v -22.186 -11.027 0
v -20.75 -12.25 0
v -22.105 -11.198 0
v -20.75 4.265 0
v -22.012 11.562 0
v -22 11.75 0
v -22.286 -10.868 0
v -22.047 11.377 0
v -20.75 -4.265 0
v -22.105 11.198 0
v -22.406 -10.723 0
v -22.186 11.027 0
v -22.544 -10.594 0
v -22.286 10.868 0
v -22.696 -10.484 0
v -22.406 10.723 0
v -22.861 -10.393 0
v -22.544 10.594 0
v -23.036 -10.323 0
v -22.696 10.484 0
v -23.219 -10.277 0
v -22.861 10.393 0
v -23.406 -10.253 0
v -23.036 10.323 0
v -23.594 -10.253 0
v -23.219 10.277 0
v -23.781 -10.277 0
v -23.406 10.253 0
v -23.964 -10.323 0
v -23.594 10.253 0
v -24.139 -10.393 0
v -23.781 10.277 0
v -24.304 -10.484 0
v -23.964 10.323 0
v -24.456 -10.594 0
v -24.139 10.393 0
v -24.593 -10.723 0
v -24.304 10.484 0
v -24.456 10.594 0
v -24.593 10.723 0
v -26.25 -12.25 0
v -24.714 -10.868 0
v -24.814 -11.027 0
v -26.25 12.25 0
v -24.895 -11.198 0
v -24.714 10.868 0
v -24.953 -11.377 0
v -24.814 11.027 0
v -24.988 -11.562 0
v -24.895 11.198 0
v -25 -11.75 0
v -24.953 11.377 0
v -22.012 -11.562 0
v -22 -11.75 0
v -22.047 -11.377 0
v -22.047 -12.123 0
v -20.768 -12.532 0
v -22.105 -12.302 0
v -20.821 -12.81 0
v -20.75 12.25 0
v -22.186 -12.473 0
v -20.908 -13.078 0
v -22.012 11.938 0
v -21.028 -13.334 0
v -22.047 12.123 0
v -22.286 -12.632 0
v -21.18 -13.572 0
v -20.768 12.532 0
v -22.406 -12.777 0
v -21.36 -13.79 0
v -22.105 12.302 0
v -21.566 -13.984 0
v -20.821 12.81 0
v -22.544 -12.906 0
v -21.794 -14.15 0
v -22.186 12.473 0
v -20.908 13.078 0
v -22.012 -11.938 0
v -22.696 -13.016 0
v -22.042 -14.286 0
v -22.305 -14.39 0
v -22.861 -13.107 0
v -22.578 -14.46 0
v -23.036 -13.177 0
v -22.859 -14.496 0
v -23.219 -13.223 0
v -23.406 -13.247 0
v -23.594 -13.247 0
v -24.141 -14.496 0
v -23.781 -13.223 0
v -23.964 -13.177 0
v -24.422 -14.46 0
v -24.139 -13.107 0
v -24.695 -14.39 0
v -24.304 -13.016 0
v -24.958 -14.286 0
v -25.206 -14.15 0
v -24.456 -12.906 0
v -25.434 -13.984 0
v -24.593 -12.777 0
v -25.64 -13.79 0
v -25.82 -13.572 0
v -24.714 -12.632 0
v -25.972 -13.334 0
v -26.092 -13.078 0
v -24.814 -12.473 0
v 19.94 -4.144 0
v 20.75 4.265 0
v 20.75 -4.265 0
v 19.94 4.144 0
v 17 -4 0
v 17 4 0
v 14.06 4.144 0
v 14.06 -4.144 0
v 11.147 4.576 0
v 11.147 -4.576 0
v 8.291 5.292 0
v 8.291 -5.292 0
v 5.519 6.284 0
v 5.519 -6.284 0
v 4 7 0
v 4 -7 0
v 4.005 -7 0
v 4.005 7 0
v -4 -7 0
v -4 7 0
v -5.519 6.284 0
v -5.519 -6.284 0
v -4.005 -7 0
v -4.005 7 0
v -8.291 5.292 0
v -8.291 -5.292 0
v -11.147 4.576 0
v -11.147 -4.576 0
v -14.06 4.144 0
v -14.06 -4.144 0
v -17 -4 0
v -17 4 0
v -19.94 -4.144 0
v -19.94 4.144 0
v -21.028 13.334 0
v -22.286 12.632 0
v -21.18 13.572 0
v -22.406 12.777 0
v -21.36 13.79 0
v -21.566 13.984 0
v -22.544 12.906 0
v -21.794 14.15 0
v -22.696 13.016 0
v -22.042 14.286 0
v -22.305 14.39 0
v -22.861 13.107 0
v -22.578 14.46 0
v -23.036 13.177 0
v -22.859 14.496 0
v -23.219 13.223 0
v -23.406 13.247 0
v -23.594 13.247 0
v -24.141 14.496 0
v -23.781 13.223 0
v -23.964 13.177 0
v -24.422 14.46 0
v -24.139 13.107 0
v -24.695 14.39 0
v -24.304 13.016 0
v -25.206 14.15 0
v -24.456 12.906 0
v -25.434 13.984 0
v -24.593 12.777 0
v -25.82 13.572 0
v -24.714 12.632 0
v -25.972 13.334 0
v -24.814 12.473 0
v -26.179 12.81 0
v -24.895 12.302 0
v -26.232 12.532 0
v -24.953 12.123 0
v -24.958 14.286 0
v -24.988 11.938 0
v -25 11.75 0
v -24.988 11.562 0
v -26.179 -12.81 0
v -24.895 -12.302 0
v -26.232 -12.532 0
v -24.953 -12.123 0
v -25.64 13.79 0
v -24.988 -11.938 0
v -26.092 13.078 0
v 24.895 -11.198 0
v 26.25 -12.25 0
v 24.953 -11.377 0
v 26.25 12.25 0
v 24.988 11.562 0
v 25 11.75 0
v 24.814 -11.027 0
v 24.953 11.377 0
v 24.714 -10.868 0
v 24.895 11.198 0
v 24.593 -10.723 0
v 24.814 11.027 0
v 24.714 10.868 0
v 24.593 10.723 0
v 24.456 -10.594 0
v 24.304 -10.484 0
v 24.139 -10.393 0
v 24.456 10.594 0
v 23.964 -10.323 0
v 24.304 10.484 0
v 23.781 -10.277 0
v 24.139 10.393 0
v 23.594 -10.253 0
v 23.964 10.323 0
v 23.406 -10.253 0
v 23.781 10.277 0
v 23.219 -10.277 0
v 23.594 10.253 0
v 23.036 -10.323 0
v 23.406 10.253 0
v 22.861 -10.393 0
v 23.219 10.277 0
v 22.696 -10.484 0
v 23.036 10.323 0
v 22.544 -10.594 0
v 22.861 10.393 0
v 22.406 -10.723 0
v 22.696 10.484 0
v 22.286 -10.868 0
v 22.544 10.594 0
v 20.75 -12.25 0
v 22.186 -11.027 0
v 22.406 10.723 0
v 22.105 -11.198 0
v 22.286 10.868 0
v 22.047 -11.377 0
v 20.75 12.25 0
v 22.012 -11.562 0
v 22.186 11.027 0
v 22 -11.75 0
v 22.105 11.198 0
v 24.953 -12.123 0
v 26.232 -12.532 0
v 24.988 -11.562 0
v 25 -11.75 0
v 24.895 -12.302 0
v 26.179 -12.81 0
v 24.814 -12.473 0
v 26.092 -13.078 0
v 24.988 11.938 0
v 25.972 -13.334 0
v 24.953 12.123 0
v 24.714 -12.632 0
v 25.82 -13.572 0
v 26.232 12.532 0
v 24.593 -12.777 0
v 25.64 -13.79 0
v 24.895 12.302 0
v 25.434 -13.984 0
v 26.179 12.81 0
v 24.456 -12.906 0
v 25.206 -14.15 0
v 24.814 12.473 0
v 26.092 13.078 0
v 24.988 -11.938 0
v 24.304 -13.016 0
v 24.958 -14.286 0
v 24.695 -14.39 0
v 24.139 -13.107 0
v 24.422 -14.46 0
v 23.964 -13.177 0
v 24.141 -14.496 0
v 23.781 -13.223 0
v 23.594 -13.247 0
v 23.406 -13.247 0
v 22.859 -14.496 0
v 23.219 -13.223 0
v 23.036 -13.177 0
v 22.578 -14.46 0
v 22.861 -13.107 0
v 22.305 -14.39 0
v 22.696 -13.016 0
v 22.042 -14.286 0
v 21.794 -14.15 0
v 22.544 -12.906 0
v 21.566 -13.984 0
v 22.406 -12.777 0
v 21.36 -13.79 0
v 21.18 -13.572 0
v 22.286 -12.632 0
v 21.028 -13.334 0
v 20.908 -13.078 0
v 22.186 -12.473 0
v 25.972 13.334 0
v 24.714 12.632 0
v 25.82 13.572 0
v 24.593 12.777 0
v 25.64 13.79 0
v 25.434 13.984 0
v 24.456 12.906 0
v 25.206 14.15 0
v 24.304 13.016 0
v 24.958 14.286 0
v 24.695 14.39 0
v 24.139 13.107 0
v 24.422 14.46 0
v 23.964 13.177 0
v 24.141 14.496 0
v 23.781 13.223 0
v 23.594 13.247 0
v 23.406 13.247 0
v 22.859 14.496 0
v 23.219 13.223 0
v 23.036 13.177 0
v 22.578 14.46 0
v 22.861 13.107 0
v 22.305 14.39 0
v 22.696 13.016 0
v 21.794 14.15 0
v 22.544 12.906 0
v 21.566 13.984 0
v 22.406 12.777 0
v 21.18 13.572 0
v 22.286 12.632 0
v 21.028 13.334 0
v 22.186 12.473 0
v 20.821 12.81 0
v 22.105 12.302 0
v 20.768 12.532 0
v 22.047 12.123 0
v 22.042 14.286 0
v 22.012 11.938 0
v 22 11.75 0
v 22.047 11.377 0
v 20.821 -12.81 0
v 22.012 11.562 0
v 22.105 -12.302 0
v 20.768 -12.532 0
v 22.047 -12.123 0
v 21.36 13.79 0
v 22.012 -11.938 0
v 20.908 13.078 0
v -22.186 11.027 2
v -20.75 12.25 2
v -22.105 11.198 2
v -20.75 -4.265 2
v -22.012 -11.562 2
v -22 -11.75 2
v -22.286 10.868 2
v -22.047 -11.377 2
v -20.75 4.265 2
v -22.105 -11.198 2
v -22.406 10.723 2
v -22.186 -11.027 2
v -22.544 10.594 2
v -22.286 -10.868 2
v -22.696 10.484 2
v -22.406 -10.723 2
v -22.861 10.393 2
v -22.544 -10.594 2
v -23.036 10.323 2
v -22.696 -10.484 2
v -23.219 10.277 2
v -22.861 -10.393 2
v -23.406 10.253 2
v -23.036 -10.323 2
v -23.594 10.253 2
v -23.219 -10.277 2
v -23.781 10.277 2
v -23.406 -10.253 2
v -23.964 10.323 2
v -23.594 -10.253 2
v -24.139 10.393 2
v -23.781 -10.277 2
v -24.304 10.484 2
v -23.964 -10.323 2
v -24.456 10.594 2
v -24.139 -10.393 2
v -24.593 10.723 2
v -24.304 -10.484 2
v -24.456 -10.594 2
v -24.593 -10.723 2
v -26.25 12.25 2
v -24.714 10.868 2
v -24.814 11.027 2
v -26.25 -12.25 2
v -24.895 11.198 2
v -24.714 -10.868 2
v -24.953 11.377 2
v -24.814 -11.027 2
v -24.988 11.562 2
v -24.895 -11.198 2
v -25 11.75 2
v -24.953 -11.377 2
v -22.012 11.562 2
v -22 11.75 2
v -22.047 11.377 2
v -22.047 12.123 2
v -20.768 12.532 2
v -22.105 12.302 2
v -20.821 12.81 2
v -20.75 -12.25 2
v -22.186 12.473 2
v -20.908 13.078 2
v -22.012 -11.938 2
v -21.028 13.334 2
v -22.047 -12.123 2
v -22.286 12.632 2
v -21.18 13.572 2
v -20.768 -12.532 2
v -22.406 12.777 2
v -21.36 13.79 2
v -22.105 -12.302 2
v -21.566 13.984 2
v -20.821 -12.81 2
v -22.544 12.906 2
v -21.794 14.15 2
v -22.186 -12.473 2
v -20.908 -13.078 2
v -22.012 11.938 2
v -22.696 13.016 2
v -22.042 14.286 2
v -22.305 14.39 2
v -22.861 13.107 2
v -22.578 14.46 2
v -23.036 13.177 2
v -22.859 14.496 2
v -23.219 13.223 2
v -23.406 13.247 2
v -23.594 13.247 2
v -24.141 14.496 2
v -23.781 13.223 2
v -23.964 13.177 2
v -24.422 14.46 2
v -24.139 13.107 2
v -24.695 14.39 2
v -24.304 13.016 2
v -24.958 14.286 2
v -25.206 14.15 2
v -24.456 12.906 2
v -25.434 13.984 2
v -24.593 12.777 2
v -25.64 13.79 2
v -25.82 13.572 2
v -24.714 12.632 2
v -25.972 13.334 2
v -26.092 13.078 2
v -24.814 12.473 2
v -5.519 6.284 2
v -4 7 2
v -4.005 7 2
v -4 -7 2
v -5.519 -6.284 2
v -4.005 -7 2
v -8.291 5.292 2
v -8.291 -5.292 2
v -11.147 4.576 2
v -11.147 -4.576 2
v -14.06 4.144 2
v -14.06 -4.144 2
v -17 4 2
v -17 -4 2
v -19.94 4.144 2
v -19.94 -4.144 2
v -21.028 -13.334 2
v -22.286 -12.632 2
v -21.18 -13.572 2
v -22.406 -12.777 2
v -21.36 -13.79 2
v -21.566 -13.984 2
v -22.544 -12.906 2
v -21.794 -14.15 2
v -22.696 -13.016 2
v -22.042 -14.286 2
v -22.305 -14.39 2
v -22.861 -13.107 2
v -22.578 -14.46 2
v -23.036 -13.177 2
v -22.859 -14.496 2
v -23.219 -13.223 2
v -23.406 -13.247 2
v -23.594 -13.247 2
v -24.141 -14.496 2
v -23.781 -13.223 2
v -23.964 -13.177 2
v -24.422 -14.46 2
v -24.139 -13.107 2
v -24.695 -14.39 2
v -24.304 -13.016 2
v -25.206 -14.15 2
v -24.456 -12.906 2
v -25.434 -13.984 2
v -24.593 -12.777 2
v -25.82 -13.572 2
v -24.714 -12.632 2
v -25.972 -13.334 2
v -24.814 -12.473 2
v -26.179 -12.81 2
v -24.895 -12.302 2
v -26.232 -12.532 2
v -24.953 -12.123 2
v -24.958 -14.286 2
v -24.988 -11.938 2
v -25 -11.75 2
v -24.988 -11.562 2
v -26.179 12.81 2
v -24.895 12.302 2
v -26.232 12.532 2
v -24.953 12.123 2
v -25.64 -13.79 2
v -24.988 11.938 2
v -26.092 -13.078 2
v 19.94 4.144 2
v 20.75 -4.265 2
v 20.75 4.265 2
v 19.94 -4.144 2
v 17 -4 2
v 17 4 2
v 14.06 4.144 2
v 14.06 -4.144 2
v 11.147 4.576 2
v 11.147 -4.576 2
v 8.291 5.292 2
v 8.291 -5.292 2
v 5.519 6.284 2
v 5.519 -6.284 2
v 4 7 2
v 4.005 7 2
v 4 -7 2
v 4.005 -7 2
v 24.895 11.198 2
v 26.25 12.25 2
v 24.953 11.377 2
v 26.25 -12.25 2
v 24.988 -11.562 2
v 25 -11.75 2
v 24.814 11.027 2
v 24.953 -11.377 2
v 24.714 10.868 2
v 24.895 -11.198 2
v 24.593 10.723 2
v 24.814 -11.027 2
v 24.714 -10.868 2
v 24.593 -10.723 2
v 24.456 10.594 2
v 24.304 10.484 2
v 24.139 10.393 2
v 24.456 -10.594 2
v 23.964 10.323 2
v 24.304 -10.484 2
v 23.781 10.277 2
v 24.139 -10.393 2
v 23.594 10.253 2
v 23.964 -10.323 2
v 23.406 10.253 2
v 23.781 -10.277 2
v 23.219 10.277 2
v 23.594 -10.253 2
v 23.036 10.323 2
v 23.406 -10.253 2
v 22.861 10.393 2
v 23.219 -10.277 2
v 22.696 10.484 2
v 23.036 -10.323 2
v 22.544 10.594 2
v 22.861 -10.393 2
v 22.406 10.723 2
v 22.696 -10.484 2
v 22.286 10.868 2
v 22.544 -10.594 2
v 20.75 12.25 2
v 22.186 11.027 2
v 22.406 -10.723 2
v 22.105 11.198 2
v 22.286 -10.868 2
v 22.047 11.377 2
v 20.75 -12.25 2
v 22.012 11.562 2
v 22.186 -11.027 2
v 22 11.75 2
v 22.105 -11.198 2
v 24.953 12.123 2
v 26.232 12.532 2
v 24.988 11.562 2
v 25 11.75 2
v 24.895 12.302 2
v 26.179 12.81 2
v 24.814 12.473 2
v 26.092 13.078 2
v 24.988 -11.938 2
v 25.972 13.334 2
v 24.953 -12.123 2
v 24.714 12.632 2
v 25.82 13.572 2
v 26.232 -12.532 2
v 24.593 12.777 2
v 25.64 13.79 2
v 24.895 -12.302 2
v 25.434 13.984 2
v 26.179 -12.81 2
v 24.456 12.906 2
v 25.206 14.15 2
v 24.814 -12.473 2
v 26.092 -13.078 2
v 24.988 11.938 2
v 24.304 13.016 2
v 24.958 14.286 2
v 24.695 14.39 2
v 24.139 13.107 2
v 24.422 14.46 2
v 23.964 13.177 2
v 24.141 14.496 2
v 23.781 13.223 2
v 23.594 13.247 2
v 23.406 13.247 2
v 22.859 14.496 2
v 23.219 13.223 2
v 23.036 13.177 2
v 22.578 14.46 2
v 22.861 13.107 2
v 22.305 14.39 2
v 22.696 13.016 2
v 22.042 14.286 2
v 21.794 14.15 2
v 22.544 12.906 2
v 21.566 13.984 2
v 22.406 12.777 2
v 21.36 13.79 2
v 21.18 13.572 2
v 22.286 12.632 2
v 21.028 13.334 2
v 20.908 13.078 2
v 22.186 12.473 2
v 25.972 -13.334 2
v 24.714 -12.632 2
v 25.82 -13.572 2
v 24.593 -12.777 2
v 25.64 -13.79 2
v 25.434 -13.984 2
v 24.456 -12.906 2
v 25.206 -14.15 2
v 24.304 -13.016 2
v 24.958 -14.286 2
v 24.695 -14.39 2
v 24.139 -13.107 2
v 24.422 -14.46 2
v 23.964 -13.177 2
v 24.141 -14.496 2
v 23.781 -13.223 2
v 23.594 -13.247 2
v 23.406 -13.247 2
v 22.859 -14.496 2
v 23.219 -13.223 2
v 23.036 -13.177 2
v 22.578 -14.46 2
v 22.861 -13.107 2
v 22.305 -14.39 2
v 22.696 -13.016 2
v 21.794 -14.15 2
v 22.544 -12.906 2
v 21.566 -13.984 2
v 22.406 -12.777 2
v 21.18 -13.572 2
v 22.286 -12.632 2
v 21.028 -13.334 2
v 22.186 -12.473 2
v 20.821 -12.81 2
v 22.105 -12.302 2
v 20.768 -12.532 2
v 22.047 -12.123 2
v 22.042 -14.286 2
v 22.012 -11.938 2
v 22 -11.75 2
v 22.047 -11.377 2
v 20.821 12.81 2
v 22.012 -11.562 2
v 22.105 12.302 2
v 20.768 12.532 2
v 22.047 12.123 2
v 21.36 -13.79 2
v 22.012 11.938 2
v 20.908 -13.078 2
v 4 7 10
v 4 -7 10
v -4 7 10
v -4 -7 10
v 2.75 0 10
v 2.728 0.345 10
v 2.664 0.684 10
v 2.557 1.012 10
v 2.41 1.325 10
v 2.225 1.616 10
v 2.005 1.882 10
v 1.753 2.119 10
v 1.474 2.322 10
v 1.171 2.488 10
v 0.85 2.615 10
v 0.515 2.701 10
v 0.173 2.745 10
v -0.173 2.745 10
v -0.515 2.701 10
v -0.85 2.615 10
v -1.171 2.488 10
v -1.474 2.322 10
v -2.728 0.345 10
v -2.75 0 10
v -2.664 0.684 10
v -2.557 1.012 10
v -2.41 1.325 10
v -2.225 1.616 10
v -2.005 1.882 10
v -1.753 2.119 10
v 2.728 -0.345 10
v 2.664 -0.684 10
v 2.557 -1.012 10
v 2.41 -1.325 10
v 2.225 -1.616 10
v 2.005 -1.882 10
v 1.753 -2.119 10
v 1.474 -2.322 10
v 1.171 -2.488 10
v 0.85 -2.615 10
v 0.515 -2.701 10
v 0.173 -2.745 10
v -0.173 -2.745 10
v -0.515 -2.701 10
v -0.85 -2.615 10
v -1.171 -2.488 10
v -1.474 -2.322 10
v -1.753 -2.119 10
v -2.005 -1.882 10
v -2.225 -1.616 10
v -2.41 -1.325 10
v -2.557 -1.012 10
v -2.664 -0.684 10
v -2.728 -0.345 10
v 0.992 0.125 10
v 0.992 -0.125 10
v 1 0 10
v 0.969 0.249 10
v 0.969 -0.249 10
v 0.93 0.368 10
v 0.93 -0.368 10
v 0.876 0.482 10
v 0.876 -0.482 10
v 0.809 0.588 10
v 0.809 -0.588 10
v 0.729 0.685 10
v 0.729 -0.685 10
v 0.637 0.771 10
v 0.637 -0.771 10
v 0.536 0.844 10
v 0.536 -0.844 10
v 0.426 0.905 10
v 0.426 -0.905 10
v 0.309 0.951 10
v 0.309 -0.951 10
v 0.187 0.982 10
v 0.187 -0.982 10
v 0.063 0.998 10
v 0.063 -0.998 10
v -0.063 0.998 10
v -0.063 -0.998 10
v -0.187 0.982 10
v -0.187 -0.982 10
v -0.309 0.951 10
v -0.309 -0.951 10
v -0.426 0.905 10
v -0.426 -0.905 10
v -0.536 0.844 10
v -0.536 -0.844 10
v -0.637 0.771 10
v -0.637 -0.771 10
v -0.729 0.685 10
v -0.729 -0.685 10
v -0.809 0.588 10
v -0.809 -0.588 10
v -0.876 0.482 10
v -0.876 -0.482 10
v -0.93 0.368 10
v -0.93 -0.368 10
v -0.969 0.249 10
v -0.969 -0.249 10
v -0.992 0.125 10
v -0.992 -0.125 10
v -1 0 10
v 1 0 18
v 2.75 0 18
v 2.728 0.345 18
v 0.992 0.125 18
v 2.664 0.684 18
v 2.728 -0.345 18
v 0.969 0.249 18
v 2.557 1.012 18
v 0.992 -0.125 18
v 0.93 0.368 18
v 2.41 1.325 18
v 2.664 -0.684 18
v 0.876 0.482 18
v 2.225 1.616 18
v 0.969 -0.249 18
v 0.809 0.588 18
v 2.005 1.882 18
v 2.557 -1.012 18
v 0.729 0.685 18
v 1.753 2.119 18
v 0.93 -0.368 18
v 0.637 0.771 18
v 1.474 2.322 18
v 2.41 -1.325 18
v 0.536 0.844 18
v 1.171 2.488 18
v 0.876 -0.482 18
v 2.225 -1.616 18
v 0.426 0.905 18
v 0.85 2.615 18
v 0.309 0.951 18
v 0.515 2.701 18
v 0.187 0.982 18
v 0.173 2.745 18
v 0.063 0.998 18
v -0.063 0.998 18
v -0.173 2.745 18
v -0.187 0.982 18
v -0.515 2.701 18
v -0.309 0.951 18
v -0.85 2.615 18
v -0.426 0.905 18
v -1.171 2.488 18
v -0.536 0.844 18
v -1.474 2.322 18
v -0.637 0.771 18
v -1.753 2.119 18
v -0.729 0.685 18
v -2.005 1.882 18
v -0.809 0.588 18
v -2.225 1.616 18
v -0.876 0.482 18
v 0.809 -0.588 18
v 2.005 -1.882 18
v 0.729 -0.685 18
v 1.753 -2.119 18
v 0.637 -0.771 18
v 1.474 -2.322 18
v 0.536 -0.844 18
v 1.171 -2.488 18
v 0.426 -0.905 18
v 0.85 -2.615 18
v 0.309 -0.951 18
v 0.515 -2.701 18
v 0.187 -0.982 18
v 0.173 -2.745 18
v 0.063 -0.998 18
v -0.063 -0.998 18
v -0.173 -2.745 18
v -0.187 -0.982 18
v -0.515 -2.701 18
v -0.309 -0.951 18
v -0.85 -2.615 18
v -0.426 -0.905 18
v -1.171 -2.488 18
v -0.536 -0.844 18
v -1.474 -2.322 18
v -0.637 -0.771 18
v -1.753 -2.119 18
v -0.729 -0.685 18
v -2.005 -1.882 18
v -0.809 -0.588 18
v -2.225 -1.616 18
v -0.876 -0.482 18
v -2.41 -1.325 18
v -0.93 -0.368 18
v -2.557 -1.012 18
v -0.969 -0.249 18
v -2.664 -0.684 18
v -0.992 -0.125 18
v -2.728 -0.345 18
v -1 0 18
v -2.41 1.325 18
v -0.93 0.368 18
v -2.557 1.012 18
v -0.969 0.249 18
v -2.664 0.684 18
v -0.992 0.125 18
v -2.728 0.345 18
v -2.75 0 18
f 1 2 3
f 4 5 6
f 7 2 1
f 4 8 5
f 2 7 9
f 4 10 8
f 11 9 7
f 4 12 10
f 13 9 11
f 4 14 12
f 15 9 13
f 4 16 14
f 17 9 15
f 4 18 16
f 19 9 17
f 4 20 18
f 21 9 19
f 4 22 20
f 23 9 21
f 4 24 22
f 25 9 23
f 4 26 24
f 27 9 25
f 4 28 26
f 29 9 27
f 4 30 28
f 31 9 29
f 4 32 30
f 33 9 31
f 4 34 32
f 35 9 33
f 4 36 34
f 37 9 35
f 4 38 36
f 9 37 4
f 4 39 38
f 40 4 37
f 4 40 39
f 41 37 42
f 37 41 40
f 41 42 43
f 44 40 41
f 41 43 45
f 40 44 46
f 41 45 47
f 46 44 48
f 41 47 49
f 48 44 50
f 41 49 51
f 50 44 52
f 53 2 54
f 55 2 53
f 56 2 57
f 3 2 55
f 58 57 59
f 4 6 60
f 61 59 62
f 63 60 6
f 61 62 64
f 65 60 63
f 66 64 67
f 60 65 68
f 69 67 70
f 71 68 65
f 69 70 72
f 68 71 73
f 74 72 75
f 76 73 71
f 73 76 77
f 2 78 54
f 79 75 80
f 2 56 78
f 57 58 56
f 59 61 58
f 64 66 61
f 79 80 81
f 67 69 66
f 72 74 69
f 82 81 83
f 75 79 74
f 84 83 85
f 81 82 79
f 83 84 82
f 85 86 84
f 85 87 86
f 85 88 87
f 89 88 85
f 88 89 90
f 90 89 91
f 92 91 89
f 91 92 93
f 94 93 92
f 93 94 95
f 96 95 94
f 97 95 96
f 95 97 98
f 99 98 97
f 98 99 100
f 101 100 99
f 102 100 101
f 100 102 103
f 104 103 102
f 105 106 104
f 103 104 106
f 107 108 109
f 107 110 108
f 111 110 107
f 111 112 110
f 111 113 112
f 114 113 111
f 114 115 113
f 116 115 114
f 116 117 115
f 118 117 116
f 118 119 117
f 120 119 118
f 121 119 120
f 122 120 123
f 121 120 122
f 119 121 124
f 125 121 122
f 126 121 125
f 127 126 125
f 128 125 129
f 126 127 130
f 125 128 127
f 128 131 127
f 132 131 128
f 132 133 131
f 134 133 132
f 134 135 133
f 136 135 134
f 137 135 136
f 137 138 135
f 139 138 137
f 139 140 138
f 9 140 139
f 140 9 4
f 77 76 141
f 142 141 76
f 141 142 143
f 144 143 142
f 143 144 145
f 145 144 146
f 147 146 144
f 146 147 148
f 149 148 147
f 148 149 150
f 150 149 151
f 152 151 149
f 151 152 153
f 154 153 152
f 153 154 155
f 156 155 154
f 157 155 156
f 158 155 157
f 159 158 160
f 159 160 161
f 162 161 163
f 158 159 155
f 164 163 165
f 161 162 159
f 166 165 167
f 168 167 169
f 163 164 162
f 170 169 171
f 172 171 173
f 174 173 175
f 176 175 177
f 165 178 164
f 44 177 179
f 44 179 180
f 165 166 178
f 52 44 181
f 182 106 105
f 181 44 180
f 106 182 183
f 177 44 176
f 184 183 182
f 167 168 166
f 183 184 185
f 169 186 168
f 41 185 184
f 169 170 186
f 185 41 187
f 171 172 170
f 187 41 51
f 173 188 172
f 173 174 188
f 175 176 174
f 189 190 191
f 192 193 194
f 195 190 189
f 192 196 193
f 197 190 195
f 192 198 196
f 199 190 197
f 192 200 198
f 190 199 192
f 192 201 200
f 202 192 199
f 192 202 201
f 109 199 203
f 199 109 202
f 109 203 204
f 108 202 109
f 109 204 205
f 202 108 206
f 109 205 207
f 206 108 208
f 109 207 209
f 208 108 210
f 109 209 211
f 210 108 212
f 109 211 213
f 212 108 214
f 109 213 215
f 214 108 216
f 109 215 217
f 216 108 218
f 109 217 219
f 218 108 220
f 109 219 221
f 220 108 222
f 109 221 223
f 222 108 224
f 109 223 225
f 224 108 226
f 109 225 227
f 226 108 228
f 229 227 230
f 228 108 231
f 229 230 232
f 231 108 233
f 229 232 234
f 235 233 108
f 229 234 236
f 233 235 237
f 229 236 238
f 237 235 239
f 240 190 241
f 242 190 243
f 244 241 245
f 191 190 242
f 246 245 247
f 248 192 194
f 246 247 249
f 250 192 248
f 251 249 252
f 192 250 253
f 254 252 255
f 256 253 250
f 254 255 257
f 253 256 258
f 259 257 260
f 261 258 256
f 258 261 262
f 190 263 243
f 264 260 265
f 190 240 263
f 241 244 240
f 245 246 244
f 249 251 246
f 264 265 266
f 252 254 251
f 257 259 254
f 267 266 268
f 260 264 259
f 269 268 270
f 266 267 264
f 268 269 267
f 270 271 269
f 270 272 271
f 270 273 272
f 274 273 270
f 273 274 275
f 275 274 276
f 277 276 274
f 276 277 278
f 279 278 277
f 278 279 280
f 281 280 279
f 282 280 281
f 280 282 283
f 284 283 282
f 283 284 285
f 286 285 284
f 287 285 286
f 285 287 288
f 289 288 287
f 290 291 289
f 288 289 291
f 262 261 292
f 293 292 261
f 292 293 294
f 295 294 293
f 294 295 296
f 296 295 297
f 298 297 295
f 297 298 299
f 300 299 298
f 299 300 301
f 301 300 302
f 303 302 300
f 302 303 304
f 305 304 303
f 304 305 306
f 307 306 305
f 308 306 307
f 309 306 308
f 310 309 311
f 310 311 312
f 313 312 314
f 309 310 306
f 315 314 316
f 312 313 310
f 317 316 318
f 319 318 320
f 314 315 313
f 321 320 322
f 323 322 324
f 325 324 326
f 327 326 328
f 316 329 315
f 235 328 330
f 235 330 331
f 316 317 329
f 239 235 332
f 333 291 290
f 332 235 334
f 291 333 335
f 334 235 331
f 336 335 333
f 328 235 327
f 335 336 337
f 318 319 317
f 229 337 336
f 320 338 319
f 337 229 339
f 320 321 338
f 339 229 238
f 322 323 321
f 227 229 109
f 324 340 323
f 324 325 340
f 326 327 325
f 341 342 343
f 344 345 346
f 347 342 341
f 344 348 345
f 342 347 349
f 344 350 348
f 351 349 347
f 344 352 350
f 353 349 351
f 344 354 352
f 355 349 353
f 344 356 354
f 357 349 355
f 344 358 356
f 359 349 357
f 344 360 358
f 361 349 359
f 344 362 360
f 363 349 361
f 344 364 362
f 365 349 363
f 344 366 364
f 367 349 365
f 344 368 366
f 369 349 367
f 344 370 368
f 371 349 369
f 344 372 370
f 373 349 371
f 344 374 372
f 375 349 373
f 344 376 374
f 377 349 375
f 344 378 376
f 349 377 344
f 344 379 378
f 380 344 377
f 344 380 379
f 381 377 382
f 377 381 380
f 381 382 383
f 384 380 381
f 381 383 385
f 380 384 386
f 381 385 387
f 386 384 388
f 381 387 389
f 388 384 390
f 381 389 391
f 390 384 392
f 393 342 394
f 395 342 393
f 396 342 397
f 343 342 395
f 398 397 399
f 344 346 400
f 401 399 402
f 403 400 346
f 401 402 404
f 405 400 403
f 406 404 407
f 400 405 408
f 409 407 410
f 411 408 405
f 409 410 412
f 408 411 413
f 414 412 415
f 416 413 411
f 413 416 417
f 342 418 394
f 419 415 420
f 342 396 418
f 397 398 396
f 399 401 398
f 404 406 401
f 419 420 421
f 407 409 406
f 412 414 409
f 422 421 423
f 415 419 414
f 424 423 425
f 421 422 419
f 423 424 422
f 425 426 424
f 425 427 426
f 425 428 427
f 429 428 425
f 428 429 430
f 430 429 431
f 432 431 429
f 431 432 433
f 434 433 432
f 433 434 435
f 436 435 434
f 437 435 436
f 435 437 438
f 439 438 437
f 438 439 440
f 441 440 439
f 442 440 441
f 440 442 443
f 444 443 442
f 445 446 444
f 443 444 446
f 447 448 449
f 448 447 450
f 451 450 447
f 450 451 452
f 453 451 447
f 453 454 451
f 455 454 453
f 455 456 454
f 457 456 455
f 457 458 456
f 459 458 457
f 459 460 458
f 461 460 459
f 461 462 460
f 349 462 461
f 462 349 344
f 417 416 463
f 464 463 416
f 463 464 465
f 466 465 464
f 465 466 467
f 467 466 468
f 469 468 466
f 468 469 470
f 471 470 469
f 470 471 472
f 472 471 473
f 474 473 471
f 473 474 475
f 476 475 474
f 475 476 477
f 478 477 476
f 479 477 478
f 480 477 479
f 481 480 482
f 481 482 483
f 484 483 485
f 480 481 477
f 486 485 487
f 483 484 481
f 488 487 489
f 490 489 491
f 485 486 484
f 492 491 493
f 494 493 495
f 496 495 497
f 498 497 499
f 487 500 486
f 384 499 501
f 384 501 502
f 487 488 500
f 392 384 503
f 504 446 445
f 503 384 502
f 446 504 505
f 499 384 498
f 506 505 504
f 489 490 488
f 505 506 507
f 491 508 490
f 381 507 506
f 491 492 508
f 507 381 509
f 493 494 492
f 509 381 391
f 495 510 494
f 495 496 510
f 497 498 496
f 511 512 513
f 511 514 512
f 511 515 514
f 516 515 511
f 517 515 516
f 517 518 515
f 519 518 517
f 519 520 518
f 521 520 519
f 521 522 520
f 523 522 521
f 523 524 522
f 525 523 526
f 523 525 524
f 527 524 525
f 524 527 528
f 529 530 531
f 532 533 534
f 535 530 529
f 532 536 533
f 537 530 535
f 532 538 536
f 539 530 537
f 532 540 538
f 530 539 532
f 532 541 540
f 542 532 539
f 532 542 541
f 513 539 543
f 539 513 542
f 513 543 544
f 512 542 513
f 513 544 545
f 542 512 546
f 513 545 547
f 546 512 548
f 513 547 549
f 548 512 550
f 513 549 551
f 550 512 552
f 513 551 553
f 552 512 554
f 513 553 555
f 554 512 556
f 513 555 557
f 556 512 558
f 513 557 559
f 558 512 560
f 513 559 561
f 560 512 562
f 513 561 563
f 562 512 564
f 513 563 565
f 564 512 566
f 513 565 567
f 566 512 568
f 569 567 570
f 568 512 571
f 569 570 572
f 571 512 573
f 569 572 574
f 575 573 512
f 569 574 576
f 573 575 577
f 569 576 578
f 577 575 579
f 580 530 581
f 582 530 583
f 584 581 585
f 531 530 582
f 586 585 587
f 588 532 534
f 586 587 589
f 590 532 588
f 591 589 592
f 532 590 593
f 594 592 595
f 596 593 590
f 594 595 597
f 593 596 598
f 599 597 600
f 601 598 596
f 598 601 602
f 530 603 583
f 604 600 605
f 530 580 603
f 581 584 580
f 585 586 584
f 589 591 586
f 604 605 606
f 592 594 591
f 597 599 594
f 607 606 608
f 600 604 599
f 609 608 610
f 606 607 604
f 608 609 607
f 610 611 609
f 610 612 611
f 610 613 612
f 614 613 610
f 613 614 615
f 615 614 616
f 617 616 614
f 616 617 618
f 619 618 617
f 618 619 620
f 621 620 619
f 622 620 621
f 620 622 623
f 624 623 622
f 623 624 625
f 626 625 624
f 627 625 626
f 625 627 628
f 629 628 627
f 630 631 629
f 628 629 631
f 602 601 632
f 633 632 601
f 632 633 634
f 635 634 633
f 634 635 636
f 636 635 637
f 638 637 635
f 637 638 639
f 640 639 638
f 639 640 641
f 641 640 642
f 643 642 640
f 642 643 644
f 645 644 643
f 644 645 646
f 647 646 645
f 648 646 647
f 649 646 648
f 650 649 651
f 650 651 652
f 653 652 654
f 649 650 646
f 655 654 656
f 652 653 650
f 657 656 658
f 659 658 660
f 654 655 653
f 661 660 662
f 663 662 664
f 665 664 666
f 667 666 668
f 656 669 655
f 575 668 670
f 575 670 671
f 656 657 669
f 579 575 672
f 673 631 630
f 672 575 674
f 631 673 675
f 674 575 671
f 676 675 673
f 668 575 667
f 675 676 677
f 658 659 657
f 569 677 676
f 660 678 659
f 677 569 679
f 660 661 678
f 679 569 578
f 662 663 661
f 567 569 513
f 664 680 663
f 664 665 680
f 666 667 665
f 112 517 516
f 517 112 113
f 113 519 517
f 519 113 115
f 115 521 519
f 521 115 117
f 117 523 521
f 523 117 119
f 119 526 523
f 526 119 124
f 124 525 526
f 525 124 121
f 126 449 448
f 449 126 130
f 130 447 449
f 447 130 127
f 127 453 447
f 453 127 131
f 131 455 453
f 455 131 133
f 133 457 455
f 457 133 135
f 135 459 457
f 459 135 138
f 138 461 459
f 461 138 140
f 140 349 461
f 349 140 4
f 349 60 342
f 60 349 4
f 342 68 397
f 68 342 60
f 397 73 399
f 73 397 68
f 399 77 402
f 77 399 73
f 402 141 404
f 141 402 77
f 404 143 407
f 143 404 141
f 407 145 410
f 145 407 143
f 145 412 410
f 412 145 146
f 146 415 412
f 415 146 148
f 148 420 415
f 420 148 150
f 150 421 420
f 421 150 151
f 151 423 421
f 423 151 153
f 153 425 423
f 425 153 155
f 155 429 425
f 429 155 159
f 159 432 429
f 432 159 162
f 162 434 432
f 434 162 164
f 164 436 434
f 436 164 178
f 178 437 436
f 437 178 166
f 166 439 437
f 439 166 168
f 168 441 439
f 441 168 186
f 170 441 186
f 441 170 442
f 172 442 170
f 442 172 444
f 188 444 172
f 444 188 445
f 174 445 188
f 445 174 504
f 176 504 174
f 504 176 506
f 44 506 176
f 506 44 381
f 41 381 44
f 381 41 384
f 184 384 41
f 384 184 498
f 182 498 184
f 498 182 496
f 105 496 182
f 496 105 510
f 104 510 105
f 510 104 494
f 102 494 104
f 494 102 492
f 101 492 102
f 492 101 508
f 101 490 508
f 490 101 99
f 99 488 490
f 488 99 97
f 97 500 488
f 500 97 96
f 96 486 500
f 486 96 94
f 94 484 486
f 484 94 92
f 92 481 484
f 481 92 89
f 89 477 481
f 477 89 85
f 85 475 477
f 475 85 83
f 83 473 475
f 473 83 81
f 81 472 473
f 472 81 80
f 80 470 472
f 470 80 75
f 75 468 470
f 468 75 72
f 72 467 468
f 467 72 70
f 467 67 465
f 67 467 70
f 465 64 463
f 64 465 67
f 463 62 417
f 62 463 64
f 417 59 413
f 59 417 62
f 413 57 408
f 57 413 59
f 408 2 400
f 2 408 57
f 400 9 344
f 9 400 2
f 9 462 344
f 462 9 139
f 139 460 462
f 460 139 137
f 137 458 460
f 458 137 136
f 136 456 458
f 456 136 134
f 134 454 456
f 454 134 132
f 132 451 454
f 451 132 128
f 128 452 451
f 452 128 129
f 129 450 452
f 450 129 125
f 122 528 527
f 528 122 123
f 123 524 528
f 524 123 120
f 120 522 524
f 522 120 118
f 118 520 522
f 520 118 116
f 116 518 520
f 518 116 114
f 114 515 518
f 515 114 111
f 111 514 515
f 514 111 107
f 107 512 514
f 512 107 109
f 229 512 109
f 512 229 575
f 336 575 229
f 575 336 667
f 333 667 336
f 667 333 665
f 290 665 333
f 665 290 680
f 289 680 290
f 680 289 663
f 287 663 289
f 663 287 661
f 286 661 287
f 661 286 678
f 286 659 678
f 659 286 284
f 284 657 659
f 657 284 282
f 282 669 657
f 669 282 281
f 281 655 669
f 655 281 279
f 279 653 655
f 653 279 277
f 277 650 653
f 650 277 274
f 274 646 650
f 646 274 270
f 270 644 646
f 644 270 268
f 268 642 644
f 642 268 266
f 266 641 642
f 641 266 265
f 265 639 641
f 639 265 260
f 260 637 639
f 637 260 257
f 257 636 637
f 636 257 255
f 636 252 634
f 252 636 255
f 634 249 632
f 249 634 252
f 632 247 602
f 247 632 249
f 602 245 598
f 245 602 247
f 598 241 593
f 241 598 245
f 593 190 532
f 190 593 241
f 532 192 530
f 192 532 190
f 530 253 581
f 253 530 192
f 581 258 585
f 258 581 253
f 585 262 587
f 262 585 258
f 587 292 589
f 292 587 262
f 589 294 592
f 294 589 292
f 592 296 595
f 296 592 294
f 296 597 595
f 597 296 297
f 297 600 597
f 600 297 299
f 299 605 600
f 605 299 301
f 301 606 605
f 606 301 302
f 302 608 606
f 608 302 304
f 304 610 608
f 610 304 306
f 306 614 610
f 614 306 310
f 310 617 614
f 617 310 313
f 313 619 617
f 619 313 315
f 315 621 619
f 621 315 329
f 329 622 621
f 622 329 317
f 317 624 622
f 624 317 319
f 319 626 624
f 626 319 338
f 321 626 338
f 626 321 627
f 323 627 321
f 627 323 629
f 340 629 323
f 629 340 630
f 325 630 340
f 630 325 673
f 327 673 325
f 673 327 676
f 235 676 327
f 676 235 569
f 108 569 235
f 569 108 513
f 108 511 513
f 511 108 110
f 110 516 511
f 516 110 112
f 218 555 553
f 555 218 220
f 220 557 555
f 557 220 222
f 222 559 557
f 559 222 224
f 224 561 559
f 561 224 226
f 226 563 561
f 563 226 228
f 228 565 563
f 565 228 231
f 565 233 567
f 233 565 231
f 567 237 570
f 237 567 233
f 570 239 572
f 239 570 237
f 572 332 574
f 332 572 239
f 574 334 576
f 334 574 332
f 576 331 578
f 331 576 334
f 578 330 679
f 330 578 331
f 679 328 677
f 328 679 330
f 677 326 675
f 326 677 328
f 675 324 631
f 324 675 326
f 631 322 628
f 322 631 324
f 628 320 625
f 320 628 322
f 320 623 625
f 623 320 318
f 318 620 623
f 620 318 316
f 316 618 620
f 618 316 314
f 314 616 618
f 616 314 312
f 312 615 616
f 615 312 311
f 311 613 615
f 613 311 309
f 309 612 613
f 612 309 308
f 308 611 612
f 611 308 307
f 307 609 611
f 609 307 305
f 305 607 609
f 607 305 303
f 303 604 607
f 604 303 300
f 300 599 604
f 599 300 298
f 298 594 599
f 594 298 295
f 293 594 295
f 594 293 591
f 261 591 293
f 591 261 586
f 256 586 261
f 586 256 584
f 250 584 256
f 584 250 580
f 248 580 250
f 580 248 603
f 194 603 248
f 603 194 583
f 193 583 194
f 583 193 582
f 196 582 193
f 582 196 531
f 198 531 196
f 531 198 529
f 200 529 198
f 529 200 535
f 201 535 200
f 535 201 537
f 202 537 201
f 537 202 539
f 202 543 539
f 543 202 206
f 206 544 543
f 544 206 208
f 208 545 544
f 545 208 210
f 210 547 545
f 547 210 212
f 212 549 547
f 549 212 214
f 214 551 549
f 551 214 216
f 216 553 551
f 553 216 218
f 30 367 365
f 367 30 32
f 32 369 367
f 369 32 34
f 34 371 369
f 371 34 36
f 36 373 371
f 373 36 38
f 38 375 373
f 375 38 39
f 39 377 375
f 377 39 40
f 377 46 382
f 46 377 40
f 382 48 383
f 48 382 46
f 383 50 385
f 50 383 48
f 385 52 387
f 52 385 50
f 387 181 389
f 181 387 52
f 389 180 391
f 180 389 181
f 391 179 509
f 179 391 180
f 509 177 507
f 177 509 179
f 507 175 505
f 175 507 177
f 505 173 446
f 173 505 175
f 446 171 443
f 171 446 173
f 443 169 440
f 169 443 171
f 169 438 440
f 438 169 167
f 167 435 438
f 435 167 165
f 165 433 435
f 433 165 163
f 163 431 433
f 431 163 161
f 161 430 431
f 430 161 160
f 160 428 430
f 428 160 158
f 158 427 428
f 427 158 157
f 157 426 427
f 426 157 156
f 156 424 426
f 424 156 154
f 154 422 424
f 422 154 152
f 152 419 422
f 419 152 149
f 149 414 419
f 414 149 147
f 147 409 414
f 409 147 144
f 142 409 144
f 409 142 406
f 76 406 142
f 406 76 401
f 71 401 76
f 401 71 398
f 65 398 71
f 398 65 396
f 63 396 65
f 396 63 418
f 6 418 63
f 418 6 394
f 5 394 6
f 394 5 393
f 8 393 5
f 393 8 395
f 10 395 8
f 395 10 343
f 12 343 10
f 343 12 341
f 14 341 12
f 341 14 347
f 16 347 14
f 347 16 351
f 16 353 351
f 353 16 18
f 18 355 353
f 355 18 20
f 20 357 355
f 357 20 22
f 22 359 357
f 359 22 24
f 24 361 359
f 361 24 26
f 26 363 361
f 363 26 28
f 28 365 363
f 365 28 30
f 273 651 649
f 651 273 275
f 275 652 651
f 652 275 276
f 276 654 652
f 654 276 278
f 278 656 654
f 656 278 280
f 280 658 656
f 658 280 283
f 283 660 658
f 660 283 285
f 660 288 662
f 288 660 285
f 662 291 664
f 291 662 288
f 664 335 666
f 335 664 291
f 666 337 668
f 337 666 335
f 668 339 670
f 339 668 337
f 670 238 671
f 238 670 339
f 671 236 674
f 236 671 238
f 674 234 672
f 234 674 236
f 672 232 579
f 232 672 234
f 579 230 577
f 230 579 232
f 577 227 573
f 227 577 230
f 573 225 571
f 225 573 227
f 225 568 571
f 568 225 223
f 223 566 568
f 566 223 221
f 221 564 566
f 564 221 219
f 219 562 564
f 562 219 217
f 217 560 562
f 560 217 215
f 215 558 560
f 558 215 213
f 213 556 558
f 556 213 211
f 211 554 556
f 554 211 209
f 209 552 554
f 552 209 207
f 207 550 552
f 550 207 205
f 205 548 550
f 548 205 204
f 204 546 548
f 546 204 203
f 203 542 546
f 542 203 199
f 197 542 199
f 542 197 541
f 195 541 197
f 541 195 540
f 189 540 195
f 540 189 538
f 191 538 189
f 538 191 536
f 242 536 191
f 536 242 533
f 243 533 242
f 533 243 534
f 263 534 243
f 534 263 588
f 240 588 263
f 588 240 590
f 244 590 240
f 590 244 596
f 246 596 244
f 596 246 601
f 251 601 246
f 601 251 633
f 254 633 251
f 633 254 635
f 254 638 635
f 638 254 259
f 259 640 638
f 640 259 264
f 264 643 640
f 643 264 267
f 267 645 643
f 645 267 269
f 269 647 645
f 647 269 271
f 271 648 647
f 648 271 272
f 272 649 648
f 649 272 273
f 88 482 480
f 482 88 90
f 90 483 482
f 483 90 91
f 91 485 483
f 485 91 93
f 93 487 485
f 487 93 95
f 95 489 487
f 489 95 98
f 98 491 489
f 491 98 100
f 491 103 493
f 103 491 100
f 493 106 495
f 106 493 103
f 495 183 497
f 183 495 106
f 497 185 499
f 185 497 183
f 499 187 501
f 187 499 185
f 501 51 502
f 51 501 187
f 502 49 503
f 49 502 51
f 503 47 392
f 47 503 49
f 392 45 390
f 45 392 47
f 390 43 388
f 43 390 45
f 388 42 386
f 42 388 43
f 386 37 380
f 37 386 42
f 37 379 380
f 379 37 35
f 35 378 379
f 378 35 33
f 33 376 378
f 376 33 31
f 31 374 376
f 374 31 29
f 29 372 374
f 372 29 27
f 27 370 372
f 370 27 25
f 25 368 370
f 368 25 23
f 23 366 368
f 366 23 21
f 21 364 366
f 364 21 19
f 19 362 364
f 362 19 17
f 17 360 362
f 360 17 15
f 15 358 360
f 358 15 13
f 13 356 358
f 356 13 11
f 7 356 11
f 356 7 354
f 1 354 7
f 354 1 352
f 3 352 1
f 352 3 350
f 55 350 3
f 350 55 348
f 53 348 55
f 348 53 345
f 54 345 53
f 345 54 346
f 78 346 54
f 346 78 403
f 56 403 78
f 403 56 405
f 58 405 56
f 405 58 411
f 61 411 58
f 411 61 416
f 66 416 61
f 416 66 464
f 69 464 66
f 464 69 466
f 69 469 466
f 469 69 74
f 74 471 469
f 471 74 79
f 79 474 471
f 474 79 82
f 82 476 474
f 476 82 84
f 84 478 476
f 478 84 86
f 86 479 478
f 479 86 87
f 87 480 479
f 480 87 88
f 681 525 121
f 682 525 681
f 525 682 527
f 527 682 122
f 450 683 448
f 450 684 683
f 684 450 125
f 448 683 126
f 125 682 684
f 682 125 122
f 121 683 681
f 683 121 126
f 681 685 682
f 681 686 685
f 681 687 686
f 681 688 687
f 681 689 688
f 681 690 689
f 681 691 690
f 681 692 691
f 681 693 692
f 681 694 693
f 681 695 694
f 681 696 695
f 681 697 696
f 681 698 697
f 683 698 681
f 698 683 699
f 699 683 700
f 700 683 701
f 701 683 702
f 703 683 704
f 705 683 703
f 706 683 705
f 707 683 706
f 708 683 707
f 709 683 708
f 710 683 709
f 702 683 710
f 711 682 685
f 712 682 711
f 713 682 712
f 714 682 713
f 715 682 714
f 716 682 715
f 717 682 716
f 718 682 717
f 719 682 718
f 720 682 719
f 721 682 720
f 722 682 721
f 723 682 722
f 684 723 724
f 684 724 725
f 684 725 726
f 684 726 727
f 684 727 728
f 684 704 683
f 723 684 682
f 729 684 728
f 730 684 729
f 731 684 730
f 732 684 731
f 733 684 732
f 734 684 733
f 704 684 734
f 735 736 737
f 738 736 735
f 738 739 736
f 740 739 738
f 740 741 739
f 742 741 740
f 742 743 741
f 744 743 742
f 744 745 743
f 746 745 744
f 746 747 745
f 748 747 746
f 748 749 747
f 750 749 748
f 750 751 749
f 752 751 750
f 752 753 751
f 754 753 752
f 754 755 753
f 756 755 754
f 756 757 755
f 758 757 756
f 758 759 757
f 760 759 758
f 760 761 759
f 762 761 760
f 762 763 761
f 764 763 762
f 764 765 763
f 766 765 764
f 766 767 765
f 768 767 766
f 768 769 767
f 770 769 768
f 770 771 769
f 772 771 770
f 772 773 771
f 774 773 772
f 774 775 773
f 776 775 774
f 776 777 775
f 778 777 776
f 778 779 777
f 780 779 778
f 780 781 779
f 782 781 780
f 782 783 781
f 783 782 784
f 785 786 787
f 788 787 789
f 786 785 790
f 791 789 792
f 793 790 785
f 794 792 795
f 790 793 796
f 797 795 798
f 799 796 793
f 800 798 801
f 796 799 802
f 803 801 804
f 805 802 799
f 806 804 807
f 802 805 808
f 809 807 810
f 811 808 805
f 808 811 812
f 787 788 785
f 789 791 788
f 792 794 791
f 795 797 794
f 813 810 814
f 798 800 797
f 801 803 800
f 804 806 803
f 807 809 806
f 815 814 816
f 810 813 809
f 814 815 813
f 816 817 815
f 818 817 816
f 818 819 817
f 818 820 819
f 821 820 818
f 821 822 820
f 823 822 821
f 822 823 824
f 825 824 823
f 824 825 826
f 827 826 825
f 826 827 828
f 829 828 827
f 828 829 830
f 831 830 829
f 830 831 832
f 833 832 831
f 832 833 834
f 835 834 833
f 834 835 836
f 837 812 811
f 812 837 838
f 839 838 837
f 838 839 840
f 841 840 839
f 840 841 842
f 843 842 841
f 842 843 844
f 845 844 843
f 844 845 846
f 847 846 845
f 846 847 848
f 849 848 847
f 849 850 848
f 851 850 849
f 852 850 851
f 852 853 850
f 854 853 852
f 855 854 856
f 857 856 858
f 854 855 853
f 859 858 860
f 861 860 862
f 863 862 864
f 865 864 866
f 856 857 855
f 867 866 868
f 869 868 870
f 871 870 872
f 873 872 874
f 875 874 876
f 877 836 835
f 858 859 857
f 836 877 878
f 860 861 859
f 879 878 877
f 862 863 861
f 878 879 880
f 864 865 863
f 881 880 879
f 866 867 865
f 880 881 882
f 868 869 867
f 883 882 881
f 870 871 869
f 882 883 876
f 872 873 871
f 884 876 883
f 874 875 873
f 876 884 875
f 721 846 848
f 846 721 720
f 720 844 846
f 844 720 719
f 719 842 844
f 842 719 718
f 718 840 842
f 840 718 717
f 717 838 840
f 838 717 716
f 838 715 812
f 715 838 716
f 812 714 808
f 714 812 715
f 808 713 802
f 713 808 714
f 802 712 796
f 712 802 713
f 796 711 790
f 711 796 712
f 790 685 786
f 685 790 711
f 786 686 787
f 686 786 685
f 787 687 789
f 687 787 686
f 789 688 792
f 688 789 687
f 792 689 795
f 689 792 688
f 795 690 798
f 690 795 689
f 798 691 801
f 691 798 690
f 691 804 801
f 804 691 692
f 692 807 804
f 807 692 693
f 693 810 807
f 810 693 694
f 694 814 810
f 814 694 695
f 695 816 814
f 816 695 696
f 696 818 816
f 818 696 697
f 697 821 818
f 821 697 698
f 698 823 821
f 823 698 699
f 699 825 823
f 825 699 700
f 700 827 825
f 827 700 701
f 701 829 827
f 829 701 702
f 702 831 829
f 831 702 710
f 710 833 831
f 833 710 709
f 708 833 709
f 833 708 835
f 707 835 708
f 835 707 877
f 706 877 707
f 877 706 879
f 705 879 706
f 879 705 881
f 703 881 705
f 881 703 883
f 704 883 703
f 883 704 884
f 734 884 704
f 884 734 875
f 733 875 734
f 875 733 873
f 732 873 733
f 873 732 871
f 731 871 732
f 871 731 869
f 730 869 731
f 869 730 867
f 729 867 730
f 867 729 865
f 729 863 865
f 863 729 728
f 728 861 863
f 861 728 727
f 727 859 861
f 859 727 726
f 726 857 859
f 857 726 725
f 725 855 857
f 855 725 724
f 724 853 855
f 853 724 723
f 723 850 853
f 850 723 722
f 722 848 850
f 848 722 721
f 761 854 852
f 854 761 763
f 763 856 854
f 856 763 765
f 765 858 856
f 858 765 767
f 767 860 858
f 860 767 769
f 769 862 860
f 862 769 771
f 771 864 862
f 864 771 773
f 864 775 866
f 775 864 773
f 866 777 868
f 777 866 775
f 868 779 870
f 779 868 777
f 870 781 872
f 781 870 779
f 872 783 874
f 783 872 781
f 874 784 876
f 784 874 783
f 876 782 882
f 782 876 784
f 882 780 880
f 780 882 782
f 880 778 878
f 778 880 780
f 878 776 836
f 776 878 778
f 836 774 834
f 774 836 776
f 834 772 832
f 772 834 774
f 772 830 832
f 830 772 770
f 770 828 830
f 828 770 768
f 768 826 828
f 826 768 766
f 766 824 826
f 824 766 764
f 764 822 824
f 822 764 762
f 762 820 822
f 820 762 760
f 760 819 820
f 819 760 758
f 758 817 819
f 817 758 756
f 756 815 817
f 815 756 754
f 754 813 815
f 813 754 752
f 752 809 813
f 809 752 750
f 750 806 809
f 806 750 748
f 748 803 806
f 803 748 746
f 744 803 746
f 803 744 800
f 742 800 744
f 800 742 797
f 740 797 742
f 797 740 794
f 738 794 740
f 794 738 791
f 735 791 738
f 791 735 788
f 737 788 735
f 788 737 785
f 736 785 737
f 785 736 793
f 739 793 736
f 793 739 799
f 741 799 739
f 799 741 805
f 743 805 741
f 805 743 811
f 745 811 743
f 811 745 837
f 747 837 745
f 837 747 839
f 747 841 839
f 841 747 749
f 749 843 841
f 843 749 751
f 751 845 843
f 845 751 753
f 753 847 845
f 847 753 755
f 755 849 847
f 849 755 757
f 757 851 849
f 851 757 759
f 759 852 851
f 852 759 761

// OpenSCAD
$fn=50;
esp32Bracket();

module esp32Bracket()
{
	linear_extrude(2) {
		// central strut
		rotate([0, 0, 90])
			backbone(bl = 41.5);
			
		difference() {
			// end bars
			union() {
				for (i=[0, 1])
				mirror([i, 0, 0])
				translate([41.5/2 + 5.5/2, 0])
					roundedSquare(5.5, 29, 2.25);
				
			}

			// modeMcu mount holes
			for (i=[0, 1], j=[0, 1])
			mirror([i, 0, 0])
			mirror([0, j, 0])
			//translate([43.5/2, 21/2])
			translate([47/2, 23.5/2])
				circle(d=3);
		}
	}

	// Center protruding mount
	linear_extrude(10)
		square([8,14], center=true);

	// circluar mount plug
	linear_extrude(10 + 8)
	difference() {
		circle(d=5.5);
		circle(d=2);
	}
}

module roundedSquare(x, y, r)
{
	hull()
	for (i=[0,1], j=[0,1])
	mirror([i, 0, 0])
	mirror([0, j, 0])
	translate([x/2 - r, y/2 - r])
		circle(r=r);
}

module backbone(bl = 110,bw = 14,bh = 8,sl = 23,sw = 12.5){
	h_pos = ((bl-20) / 2);
	difference(){
		// main
		translate([-(bw/2),-(bl/2)]) 
			square([bw,bl]);

		//round side indents
		for (i = [[34,17,0],[34,-17,0],[-34,17,0],[-34,-17,0]]) {
			translate(i) 
				circle(r=30,$fn=64);
		}

		//center hole
		circle(r=3,$fn=32);
	}
}
